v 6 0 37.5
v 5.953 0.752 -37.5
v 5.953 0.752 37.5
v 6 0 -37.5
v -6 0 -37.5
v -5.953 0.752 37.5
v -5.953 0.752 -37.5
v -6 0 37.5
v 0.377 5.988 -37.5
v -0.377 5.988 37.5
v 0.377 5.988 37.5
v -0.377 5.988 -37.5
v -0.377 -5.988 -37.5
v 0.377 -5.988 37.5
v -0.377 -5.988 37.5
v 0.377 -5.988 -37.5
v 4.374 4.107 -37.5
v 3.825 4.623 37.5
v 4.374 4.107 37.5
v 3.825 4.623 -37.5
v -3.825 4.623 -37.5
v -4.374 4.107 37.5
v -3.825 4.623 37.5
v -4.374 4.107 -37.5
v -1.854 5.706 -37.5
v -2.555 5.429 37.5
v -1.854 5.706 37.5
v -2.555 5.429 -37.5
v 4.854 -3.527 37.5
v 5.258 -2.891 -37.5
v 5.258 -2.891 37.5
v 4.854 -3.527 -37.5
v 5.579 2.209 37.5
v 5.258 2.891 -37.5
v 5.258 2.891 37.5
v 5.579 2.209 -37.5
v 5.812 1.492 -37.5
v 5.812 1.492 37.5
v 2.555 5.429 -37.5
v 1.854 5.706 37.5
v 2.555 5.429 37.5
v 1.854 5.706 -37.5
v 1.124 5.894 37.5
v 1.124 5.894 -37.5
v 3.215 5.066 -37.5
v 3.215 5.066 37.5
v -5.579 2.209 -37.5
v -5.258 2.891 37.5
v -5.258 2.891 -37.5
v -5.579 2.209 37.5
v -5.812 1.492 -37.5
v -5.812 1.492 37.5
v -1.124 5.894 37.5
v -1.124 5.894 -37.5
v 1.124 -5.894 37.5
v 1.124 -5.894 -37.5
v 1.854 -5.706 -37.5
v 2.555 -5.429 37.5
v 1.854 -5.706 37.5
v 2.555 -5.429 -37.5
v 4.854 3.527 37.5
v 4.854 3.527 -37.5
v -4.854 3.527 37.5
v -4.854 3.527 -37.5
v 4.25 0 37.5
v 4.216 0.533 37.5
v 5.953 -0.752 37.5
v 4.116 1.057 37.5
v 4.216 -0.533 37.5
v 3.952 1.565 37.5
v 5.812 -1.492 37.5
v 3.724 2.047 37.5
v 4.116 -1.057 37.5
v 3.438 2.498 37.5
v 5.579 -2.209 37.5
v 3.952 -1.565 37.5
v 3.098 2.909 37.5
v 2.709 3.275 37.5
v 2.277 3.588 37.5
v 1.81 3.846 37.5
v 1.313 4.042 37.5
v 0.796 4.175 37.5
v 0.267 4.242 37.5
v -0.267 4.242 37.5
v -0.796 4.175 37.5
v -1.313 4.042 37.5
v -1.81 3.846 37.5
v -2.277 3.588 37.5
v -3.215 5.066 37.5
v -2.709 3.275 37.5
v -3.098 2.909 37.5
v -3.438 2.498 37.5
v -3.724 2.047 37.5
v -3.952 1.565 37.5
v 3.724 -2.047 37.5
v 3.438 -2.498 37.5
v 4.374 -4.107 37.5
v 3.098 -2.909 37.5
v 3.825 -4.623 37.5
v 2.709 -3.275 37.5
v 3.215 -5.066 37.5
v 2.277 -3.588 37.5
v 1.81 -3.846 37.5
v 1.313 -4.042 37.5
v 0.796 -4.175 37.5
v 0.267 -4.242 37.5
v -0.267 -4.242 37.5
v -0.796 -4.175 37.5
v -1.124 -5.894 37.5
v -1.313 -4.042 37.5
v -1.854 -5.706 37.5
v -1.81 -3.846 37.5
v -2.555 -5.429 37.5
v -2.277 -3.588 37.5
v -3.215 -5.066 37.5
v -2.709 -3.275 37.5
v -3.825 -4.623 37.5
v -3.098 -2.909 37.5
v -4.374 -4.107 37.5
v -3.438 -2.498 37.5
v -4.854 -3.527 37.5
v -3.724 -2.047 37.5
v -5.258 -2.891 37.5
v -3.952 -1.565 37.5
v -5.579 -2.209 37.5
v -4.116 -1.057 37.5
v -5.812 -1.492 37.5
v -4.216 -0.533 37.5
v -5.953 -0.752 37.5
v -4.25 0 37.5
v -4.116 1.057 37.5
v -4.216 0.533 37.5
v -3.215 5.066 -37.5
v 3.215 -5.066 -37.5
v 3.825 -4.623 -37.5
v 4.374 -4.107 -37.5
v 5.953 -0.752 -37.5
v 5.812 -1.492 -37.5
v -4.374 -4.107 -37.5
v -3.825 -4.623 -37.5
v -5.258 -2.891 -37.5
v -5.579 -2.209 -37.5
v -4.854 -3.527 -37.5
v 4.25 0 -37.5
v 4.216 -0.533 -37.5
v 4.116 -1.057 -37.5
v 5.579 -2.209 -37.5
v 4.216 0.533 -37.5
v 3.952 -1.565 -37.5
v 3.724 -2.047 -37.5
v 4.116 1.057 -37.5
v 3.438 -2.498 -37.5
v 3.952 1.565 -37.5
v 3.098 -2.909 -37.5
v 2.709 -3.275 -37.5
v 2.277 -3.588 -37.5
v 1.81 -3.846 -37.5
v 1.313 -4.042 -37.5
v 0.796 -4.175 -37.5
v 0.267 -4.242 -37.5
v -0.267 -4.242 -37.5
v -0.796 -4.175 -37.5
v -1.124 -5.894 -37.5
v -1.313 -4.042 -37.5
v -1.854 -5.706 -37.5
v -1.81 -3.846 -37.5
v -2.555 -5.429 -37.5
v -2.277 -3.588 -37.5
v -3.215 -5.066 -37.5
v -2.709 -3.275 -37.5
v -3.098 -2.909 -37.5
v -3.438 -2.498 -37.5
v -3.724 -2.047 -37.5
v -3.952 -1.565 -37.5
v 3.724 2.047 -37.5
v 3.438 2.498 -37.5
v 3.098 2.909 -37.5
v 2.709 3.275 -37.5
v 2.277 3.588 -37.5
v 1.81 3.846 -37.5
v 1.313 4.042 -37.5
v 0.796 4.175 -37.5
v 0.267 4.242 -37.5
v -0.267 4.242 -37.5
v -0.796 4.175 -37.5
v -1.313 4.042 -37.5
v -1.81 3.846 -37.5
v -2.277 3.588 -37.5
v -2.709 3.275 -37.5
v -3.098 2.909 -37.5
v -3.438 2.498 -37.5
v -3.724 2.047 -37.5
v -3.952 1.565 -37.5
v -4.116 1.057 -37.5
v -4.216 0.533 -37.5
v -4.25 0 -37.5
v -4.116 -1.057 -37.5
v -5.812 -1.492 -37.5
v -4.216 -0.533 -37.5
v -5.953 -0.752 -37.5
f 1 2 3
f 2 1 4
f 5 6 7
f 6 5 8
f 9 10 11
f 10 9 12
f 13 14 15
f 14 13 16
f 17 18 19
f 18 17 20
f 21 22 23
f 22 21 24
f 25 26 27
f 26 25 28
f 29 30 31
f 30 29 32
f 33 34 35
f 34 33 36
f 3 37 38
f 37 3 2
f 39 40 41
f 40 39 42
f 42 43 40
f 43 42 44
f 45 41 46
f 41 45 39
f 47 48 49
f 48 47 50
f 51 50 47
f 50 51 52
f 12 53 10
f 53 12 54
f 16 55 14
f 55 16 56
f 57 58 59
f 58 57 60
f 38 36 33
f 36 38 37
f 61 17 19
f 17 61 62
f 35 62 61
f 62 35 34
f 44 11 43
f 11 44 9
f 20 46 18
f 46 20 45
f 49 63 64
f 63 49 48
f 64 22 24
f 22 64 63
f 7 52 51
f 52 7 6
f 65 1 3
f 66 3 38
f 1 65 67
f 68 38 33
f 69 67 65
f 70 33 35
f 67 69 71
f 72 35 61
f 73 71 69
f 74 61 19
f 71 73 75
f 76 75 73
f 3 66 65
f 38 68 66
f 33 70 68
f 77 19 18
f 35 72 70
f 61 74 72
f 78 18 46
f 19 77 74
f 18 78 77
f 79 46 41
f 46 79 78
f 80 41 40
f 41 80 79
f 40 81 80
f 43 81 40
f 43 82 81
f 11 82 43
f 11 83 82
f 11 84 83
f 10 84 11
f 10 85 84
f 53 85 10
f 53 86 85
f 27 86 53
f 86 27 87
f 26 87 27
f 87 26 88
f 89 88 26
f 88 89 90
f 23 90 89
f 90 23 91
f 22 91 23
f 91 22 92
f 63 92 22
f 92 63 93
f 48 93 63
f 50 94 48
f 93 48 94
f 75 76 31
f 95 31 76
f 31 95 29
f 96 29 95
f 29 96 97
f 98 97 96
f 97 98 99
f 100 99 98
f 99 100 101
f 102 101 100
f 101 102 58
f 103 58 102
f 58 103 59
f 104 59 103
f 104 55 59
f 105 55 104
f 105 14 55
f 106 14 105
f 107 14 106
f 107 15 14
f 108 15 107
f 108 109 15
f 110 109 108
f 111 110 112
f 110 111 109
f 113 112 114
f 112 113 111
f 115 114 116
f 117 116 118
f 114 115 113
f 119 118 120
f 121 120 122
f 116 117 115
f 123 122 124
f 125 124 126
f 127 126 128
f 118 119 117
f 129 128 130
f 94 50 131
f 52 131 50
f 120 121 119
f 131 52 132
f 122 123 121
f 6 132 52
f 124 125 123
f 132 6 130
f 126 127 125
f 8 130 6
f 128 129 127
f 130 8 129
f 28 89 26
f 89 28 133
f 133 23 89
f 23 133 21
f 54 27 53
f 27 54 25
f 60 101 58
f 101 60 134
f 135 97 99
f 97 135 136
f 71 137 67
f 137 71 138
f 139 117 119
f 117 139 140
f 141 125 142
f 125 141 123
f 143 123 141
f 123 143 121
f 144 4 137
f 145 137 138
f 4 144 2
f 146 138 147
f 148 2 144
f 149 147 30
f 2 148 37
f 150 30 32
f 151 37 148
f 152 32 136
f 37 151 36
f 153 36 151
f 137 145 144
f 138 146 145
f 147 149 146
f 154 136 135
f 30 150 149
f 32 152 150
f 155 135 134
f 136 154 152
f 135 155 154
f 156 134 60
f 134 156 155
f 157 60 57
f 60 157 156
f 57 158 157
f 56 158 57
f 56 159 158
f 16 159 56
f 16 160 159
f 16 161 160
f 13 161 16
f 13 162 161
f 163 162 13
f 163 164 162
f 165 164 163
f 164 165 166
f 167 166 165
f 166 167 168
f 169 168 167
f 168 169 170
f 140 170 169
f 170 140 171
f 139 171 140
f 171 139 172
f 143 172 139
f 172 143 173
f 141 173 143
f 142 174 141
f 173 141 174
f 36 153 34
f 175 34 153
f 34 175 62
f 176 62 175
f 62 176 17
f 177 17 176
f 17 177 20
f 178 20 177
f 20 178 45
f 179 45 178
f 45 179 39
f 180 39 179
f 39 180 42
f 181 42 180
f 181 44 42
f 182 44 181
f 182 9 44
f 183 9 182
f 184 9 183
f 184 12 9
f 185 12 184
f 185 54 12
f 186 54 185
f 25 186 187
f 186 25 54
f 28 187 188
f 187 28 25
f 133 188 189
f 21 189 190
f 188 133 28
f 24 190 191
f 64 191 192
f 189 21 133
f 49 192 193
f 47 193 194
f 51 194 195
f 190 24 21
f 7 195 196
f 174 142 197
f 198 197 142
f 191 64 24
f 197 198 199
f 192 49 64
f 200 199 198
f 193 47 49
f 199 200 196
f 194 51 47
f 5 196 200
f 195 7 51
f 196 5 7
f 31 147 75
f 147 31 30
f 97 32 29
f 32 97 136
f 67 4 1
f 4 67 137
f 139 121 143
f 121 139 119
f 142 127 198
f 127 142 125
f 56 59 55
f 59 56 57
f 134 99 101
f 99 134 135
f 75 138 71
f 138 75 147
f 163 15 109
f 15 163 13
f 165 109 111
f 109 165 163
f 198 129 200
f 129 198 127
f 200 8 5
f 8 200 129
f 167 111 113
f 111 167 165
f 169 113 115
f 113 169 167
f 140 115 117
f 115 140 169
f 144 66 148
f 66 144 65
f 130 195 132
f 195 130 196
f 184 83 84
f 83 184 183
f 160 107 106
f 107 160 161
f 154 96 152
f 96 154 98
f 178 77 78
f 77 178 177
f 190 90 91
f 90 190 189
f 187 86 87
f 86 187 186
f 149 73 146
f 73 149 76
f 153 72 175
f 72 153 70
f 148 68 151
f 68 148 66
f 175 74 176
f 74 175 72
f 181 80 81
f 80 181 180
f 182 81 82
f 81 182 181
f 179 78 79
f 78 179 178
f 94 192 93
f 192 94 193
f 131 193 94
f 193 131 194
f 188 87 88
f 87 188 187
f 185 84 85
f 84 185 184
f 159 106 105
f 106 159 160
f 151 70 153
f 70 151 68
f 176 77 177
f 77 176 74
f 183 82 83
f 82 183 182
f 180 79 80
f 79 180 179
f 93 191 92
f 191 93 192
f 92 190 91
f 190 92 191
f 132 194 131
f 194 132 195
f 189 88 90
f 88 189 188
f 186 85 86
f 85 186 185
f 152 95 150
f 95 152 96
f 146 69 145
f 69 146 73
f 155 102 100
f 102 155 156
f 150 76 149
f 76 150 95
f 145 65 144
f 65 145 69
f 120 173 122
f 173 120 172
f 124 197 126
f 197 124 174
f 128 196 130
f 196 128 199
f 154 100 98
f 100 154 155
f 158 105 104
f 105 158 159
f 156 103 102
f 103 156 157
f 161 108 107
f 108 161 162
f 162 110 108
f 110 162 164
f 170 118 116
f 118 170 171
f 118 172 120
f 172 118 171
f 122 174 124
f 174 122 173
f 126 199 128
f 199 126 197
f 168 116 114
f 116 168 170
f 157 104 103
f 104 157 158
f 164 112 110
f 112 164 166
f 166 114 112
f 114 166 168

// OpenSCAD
$fn = 50;


difference() {
	union() {
		translate(v = [0, 0, -37.5000000000]) {
			cylinder(h = 75, r = 6.0000000000);
		}
	}
	union() {
		translate(v = [0, 0, -100.0000000000]) {
			cylinder(h = 200, r = 4.2500000000);
		}
	}
}
